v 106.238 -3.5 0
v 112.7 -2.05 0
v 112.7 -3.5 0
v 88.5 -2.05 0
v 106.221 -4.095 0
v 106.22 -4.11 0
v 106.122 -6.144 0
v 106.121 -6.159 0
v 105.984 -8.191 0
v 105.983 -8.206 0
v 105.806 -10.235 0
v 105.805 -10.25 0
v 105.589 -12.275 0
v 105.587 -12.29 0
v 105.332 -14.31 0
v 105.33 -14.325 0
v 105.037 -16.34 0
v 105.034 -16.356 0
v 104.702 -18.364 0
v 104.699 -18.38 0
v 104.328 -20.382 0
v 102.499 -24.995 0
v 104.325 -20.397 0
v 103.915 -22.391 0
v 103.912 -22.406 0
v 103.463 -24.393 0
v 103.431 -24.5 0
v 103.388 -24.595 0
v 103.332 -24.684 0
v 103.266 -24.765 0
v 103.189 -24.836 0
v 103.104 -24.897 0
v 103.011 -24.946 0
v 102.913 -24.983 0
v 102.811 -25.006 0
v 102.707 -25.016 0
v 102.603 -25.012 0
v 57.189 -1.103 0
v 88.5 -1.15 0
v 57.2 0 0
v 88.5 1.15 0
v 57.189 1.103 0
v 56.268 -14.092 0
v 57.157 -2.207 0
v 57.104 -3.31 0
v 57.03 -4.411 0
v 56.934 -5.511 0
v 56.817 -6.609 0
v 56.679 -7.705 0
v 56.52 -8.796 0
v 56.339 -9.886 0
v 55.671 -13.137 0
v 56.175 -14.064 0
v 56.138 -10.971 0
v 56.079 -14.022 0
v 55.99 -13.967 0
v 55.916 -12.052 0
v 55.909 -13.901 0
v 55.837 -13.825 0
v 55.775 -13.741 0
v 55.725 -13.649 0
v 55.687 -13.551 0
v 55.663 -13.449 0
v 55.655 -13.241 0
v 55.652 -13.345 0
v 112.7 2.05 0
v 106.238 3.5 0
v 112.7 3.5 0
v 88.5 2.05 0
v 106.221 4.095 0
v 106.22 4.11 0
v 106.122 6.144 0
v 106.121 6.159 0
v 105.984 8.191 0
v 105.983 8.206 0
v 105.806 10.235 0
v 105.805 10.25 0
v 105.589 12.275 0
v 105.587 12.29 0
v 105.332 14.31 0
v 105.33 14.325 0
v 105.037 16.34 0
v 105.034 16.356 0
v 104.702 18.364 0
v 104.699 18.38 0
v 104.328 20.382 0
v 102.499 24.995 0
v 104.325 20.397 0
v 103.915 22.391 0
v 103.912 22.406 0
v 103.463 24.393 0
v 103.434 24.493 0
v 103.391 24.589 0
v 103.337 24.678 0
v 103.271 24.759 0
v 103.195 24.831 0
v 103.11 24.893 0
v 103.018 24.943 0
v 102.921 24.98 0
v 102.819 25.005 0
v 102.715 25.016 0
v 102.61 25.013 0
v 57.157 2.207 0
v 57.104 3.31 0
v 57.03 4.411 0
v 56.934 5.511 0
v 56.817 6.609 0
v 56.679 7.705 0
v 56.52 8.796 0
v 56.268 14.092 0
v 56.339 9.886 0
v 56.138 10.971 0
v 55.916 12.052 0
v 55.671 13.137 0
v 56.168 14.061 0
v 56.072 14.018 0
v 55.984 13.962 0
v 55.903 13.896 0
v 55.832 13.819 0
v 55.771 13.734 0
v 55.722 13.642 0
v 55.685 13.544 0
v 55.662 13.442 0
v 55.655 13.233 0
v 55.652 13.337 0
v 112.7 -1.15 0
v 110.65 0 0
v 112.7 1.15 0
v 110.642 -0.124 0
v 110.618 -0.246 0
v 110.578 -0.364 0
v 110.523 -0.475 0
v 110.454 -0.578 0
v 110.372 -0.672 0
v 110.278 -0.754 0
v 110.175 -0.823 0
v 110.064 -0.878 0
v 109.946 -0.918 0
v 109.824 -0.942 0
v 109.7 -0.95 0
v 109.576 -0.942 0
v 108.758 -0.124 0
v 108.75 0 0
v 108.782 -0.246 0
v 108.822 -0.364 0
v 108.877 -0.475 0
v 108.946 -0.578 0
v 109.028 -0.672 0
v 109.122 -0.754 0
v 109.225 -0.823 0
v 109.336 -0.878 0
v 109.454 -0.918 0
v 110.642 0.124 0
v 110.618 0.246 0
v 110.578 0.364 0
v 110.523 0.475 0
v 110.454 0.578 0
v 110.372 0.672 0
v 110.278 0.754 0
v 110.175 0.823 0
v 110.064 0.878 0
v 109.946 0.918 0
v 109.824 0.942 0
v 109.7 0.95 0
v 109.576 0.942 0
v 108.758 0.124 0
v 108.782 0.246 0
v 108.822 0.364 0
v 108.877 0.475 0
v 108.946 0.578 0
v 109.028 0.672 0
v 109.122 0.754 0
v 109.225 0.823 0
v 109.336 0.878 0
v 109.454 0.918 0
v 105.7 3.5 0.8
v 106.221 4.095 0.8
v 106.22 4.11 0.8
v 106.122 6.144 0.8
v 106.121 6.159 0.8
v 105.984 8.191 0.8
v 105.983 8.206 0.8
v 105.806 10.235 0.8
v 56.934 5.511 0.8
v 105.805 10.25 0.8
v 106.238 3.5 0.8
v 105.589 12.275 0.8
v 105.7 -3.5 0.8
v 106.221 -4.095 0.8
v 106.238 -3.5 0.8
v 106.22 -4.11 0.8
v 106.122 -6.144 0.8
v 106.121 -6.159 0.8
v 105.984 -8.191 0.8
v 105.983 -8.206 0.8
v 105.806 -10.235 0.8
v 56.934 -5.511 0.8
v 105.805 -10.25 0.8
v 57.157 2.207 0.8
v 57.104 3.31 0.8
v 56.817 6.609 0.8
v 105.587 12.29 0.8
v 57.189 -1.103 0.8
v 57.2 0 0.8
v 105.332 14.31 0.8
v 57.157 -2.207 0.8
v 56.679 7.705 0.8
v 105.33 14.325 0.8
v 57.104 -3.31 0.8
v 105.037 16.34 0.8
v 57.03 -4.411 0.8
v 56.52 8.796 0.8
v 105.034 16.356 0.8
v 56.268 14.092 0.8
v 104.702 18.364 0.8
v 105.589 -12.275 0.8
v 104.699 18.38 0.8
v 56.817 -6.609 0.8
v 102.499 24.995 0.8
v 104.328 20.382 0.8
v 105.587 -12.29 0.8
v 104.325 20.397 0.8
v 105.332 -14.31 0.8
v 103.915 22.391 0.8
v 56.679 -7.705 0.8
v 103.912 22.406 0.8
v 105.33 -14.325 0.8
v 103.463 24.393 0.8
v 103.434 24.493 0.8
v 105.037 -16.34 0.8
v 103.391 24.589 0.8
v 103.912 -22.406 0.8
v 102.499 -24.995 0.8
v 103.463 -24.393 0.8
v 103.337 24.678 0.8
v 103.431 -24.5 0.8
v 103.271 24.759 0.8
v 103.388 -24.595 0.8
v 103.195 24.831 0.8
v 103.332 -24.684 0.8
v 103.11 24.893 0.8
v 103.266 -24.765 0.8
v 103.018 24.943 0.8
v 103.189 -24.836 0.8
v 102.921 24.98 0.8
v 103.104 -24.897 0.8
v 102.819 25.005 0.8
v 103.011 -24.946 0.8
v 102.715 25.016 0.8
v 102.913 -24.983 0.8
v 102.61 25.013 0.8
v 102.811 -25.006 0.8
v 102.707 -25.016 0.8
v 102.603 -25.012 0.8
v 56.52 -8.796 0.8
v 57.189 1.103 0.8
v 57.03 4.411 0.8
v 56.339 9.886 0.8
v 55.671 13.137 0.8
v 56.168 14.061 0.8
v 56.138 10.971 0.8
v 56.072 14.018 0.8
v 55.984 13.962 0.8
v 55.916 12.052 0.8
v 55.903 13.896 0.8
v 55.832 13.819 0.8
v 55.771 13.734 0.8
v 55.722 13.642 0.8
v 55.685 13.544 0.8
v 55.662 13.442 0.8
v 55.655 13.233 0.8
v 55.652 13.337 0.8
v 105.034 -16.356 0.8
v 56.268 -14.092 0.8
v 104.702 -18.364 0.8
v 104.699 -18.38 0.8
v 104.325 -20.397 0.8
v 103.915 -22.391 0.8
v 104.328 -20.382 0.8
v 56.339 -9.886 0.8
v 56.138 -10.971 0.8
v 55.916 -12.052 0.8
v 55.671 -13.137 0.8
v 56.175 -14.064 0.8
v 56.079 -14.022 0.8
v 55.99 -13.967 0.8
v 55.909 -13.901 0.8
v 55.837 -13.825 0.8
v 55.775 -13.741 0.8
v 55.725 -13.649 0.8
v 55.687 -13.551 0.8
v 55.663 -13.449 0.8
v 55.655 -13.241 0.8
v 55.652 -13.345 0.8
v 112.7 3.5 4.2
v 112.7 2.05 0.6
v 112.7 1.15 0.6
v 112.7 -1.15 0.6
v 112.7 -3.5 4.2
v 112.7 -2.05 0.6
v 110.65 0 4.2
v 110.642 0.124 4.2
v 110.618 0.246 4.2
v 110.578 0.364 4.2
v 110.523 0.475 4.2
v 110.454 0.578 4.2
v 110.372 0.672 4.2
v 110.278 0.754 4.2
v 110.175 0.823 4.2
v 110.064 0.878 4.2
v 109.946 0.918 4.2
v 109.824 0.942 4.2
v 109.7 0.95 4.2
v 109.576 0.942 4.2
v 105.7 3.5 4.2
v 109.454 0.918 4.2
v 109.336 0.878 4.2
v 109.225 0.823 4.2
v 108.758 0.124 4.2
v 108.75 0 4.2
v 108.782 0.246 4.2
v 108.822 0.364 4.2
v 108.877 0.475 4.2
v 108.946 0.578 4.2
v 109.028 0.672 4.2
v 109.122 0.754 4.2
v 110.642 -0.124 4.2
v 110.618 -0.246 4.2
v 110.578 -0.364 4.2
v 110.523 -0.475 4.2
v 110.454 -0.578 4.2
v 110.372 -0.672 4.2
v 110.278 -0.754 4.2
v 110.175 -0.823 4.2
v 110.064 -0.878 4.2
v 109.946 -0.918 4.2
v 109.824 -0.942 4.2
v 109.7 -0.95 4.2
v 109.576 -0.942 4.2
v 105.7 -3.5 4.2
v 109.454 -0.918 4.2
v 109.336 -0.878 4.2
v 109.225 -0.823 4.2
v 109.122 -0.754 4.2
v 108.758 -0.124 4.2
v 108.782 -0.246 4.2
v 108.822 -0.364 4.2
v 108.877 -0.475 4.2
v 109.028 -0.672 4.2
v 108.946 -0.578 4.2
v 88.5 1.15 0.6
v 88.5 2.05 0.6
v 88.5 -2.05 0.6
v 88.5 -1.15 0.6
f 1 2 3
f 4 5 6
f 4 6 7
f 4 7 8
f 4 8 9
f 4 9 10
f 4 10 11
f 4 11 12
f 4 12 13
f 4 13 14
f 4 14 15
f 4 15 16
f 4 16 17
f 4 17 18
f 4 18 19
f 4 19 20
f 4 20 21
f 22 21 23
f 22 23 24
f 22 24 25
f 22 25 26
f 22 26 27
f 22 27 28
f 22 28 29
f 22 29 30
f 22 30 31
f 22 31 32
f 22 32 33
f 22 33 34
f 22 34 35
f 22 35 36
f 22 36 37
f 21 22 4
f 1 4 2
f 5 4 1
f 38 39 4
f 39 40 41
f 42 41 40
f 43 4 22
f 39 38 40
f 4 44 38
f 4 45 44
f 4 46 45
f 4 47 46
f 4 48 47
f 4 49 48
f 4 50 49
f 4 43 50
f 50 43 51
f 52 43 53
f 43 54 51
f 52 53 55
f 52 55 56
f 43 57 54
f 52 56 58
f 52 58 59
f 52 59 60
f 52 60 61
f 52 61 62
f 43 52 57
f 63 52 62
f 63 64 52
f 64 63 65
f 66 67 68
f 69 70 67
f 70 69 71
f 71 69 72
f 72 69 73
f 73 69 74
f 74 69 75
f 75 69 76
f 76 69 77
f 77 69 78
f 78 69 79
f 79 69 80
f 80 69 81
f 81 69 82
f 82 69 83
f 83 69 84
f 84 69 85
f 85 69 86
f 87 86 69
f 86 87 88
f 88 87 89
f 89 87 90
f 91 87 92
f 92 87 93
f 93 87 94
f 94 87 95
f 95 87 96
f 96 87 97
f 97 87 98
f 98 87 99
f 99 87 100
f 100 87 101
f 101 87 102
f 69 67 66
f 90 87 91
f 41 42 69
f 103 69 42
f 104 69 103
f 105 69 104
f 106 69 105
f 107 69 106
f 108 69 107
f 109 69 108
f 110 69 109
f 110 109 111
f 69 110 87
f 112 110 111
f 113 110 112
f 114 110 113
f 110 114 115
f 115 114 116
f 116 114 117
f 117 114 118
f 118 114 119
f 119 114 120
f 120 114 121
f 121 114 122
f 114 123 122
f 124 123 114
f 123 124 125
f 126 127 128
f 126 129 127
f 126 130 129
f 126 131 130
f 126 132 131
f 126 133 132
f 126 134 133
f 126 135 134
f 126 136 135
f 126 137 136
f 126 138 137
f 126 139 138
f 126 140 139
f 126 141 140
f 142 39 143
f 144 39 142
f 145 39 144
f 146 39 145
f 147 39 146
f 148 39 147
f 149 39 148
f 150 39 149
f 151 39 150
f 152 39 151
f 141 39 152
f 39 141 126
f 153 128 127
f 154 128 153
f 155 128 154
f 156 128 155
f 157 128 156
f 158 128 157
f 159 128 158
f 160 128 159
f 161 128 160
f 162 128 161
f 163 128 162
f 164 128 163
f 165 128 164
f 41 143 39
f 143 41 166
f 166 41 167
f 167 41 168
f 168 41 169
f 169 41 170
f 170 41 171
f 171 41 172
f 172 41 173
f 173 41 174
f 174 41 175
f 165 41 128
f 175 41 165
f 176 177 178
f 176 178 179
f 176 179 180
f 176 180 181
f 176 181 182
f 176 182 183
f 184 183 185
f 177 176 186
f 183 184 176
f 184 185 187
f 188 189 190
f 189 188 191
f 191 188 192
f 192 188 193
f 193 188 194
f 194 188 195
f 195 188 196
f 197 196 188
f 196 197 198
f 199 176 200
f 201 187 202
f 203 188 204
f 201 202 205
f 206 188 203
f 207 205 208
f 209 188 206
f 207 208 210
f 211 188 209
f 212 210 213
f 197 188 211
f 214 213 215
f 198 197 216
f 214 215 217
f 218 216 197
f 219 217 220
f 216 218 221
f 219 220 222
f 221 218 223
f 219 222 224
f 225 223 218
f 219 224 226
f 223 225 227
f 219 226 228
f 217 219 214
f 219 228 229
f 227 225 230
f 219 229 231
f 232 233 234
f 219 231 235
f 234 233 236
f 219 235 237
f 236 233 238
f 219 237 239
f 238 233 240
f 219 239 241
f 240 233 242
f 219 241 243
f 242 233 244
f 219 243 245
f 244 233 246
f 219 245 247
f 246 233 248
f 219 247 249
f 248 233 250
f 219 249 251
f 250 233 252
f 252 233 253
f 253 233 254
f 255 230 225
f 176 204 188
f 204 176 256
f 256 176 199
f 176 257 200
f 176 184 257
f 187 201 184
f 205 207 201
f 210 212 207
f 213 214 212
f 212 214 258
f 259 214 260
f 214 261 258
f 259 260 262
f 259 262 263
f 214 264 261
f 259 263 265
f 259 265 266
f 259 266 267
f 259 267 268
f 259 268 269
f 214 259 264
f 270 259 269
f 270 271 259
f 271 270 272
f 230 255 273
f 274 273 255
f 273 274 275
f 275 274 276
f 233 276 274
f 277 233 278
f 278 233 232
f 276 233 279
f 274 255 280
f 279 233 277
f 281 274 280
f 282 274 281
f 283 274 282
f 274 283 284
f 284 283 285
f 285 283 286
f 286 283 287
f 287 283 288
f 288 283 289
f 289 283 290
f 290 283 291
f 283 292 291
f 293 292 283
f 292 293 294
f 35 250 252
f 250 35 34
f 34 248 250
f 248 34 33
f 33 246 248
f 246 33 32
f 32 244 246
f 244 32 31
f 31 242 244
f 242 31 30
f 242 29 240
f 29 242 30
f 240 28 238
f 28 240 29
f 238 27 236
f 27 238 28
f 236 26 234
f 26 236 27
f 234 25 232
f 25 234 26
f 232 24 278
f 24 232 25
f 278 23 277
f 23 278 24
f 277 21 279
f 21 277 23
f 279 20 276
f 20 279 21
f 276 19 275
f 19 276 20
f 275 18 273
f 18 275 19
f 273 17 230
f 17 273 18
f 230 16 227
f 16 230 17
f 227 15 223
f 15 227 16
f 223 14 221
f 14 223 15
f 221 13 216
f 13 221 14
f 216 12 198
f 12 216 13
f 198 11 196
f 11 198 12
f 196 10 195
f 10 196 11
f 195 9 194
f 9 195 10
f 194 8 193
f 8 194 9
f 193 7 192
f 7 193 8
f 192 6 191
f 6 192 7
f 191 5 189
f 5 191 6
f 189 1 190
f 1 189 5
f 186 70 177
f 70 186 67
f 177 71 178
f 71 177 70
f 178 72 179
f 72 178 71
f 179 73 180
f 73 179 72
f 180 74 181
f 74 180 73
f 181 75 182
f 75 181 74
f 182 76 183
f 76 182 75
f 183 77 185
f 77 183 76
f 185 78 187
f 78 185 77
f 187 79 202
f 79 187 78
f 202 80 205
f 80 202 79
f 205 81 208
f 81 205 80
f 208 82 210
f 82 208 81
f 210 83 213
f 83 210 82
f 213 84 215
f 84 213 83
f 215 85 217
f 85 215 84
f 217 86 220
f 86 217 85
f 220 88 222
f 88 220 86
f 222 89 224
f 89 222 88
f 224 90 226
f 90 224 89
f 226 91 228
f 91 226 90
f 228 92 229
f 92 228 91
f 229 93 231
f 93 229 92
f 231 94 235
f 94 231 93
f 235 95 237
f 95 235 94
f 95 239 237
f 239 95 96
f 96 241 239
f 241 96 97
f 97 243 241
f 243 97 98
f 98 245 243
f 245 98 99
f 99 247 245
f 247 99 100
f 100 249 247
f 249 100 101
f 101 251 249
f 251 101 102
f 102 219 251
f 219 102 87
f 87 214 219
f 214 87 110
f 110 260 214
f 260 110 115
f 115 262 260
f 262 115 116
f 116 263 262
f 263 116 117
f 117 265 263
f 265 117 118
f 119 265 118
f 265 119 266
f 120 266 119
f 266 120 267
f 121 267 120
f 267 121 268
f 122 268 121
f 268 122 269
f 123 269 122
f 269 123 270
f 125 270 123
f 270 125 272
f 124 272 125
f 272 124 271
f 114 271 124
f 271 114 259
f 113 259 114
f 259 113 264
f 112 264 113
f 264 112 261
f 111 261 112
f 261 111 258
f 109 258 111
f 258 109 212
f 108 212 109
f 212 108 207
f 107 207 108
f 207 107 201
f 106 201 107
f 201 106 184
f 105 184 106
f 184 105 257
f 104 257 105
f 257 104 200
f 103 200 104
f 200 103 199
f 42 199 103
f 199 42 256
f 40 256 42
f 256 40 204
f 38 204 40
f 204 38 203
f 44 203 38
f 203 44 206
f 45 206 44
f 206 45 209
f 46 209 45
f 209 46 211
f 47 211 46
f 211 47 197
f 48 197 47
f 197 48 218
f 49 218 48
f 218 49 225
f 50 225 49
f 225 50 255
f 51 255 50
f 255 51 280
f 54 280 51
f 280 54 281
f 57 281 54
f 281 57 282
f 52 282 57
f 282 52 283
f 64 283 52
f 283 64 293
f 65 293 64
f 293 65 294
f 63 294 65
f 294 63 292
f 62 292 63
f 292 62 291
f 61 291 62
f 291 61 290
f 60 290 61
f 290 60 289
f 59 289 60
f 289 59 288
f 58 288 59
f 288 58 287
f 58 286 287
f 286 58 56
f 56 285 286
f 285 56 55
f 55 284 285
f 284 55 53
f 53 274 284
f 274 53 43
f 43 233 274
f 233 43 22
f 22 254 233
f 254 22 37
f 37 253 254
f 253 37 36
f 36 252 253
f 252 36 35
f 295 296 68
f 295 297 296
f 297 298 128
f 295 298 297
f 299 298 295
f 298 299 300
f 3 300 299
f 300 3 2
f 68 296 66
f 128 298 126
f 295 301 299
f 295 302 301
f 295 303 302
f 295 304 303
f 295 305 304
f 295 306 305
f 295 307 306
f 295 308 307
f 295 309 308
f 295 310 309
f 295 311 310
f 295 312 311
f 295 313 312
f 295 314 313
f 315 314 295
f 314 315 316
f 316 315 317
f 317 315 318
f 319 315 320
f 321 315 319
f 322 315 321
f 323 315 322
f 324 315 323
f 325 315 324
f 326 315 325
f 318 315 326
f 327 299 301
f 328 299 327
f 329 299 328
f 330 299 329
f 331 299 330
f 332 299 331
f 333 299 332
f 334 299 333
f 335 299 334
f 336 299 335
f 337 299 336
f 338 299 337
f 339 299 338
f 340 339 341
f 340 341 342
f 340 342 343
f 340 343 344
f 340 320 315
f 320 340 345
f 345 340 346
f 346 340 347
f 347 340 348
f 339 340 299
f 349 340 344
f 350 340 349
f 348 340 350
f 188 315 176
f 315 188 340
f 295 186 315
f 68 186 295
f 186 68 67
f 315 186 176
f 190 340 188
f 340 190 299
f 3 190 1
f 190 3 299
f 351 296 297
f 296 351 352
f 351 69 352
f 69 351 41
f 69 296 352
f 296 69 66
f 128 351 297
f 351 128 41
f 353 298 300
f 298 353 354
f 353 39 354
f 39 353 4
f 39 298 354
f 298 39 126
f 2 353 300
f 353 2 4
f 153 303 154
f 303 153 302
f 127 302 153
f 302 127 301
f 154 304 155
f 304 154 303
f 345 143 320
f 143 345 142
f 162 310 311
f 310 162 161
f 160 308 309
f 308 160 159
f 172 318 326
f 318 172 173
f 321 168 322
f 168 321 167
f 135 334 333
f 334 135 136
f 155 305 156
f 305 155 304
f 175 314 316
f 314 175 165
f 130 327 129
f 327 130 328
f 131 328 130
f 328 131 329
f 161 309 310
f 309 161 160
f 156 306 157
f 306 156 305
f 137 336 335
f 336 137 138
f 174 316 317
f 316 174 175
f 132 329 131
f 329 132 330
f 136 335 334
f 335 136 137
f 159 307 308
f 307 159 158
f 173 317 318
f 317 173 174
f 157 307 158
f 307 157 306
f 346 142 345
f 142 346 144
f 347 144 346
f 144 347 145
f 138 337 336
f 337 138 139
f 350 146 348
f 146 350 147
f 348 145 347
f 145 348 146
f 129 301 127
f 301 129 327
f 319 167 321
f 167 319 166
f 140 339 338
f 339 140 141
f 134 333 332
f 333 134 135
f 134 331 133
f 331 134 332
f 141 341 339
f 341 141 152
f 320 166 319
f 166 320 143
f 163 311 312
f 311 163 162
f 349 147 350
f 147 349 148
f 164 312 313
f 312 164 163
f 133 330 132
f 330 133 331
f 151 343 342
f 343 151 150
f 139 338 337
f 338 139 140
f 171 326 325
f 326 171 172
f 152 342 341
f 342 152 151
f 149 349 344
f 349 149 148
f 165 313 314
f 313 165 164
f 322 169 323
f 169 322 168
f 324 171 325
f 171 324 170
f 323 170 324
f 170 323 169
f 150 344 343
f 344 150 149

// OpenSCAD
// Gen-CS — bobbin LID (top flange + locating tab). Print x12, flange face DOWN on the bed.
// CA-glue onto the hub top BEFORE winding. Tab = lap joint into the stator tab pocket; 1.75 mm filament
// pin through pin hole + stator ledge, trim flush. Lead slots carry both leads flush.
include <parameters.scad>;
$fn = 48;
module sector_2d(r_in, r_out, ang) {
    polygon([
        for (a = [-ang/2 : ang/24 : ang/2]) [r_in*cos(a), r_in*sin(a)],
        for (a = [ang/2 : -ang/24 : -ang/2]) [r_out*cos(a), r_out*sin(a)]
    ]);
}
module footprint_2d() { offset(r=wall) sector_2d(coil_id_r, coil_od_r, span_deg); }
module hub_2d()       { offset(delta=-coil_core_inset) sector_2d(coil_id_r, coil_od_r, span_deg); }

difference() {
    union() {
        linear_extrude(flange_t) footprint_2d();
        translate([coil_od_r + 0.2, -tab_w/2, 0]) cube([tab_len, tab_w, tab_h]);
    }
    translate([coil_mount_r, 0, -0.1]) cylinder(d=pin_d, h=tab_h + 1);
    for (y = [lead_y, -lead_y])
        translate([coil_od_r - coil_core_inset - 0.5, y - lead_slot_w/2, -0.1])
            cube([coil_core_inset + tab_len + 2, lead_slot_w, lead_groove_d + 0.1]);
}
